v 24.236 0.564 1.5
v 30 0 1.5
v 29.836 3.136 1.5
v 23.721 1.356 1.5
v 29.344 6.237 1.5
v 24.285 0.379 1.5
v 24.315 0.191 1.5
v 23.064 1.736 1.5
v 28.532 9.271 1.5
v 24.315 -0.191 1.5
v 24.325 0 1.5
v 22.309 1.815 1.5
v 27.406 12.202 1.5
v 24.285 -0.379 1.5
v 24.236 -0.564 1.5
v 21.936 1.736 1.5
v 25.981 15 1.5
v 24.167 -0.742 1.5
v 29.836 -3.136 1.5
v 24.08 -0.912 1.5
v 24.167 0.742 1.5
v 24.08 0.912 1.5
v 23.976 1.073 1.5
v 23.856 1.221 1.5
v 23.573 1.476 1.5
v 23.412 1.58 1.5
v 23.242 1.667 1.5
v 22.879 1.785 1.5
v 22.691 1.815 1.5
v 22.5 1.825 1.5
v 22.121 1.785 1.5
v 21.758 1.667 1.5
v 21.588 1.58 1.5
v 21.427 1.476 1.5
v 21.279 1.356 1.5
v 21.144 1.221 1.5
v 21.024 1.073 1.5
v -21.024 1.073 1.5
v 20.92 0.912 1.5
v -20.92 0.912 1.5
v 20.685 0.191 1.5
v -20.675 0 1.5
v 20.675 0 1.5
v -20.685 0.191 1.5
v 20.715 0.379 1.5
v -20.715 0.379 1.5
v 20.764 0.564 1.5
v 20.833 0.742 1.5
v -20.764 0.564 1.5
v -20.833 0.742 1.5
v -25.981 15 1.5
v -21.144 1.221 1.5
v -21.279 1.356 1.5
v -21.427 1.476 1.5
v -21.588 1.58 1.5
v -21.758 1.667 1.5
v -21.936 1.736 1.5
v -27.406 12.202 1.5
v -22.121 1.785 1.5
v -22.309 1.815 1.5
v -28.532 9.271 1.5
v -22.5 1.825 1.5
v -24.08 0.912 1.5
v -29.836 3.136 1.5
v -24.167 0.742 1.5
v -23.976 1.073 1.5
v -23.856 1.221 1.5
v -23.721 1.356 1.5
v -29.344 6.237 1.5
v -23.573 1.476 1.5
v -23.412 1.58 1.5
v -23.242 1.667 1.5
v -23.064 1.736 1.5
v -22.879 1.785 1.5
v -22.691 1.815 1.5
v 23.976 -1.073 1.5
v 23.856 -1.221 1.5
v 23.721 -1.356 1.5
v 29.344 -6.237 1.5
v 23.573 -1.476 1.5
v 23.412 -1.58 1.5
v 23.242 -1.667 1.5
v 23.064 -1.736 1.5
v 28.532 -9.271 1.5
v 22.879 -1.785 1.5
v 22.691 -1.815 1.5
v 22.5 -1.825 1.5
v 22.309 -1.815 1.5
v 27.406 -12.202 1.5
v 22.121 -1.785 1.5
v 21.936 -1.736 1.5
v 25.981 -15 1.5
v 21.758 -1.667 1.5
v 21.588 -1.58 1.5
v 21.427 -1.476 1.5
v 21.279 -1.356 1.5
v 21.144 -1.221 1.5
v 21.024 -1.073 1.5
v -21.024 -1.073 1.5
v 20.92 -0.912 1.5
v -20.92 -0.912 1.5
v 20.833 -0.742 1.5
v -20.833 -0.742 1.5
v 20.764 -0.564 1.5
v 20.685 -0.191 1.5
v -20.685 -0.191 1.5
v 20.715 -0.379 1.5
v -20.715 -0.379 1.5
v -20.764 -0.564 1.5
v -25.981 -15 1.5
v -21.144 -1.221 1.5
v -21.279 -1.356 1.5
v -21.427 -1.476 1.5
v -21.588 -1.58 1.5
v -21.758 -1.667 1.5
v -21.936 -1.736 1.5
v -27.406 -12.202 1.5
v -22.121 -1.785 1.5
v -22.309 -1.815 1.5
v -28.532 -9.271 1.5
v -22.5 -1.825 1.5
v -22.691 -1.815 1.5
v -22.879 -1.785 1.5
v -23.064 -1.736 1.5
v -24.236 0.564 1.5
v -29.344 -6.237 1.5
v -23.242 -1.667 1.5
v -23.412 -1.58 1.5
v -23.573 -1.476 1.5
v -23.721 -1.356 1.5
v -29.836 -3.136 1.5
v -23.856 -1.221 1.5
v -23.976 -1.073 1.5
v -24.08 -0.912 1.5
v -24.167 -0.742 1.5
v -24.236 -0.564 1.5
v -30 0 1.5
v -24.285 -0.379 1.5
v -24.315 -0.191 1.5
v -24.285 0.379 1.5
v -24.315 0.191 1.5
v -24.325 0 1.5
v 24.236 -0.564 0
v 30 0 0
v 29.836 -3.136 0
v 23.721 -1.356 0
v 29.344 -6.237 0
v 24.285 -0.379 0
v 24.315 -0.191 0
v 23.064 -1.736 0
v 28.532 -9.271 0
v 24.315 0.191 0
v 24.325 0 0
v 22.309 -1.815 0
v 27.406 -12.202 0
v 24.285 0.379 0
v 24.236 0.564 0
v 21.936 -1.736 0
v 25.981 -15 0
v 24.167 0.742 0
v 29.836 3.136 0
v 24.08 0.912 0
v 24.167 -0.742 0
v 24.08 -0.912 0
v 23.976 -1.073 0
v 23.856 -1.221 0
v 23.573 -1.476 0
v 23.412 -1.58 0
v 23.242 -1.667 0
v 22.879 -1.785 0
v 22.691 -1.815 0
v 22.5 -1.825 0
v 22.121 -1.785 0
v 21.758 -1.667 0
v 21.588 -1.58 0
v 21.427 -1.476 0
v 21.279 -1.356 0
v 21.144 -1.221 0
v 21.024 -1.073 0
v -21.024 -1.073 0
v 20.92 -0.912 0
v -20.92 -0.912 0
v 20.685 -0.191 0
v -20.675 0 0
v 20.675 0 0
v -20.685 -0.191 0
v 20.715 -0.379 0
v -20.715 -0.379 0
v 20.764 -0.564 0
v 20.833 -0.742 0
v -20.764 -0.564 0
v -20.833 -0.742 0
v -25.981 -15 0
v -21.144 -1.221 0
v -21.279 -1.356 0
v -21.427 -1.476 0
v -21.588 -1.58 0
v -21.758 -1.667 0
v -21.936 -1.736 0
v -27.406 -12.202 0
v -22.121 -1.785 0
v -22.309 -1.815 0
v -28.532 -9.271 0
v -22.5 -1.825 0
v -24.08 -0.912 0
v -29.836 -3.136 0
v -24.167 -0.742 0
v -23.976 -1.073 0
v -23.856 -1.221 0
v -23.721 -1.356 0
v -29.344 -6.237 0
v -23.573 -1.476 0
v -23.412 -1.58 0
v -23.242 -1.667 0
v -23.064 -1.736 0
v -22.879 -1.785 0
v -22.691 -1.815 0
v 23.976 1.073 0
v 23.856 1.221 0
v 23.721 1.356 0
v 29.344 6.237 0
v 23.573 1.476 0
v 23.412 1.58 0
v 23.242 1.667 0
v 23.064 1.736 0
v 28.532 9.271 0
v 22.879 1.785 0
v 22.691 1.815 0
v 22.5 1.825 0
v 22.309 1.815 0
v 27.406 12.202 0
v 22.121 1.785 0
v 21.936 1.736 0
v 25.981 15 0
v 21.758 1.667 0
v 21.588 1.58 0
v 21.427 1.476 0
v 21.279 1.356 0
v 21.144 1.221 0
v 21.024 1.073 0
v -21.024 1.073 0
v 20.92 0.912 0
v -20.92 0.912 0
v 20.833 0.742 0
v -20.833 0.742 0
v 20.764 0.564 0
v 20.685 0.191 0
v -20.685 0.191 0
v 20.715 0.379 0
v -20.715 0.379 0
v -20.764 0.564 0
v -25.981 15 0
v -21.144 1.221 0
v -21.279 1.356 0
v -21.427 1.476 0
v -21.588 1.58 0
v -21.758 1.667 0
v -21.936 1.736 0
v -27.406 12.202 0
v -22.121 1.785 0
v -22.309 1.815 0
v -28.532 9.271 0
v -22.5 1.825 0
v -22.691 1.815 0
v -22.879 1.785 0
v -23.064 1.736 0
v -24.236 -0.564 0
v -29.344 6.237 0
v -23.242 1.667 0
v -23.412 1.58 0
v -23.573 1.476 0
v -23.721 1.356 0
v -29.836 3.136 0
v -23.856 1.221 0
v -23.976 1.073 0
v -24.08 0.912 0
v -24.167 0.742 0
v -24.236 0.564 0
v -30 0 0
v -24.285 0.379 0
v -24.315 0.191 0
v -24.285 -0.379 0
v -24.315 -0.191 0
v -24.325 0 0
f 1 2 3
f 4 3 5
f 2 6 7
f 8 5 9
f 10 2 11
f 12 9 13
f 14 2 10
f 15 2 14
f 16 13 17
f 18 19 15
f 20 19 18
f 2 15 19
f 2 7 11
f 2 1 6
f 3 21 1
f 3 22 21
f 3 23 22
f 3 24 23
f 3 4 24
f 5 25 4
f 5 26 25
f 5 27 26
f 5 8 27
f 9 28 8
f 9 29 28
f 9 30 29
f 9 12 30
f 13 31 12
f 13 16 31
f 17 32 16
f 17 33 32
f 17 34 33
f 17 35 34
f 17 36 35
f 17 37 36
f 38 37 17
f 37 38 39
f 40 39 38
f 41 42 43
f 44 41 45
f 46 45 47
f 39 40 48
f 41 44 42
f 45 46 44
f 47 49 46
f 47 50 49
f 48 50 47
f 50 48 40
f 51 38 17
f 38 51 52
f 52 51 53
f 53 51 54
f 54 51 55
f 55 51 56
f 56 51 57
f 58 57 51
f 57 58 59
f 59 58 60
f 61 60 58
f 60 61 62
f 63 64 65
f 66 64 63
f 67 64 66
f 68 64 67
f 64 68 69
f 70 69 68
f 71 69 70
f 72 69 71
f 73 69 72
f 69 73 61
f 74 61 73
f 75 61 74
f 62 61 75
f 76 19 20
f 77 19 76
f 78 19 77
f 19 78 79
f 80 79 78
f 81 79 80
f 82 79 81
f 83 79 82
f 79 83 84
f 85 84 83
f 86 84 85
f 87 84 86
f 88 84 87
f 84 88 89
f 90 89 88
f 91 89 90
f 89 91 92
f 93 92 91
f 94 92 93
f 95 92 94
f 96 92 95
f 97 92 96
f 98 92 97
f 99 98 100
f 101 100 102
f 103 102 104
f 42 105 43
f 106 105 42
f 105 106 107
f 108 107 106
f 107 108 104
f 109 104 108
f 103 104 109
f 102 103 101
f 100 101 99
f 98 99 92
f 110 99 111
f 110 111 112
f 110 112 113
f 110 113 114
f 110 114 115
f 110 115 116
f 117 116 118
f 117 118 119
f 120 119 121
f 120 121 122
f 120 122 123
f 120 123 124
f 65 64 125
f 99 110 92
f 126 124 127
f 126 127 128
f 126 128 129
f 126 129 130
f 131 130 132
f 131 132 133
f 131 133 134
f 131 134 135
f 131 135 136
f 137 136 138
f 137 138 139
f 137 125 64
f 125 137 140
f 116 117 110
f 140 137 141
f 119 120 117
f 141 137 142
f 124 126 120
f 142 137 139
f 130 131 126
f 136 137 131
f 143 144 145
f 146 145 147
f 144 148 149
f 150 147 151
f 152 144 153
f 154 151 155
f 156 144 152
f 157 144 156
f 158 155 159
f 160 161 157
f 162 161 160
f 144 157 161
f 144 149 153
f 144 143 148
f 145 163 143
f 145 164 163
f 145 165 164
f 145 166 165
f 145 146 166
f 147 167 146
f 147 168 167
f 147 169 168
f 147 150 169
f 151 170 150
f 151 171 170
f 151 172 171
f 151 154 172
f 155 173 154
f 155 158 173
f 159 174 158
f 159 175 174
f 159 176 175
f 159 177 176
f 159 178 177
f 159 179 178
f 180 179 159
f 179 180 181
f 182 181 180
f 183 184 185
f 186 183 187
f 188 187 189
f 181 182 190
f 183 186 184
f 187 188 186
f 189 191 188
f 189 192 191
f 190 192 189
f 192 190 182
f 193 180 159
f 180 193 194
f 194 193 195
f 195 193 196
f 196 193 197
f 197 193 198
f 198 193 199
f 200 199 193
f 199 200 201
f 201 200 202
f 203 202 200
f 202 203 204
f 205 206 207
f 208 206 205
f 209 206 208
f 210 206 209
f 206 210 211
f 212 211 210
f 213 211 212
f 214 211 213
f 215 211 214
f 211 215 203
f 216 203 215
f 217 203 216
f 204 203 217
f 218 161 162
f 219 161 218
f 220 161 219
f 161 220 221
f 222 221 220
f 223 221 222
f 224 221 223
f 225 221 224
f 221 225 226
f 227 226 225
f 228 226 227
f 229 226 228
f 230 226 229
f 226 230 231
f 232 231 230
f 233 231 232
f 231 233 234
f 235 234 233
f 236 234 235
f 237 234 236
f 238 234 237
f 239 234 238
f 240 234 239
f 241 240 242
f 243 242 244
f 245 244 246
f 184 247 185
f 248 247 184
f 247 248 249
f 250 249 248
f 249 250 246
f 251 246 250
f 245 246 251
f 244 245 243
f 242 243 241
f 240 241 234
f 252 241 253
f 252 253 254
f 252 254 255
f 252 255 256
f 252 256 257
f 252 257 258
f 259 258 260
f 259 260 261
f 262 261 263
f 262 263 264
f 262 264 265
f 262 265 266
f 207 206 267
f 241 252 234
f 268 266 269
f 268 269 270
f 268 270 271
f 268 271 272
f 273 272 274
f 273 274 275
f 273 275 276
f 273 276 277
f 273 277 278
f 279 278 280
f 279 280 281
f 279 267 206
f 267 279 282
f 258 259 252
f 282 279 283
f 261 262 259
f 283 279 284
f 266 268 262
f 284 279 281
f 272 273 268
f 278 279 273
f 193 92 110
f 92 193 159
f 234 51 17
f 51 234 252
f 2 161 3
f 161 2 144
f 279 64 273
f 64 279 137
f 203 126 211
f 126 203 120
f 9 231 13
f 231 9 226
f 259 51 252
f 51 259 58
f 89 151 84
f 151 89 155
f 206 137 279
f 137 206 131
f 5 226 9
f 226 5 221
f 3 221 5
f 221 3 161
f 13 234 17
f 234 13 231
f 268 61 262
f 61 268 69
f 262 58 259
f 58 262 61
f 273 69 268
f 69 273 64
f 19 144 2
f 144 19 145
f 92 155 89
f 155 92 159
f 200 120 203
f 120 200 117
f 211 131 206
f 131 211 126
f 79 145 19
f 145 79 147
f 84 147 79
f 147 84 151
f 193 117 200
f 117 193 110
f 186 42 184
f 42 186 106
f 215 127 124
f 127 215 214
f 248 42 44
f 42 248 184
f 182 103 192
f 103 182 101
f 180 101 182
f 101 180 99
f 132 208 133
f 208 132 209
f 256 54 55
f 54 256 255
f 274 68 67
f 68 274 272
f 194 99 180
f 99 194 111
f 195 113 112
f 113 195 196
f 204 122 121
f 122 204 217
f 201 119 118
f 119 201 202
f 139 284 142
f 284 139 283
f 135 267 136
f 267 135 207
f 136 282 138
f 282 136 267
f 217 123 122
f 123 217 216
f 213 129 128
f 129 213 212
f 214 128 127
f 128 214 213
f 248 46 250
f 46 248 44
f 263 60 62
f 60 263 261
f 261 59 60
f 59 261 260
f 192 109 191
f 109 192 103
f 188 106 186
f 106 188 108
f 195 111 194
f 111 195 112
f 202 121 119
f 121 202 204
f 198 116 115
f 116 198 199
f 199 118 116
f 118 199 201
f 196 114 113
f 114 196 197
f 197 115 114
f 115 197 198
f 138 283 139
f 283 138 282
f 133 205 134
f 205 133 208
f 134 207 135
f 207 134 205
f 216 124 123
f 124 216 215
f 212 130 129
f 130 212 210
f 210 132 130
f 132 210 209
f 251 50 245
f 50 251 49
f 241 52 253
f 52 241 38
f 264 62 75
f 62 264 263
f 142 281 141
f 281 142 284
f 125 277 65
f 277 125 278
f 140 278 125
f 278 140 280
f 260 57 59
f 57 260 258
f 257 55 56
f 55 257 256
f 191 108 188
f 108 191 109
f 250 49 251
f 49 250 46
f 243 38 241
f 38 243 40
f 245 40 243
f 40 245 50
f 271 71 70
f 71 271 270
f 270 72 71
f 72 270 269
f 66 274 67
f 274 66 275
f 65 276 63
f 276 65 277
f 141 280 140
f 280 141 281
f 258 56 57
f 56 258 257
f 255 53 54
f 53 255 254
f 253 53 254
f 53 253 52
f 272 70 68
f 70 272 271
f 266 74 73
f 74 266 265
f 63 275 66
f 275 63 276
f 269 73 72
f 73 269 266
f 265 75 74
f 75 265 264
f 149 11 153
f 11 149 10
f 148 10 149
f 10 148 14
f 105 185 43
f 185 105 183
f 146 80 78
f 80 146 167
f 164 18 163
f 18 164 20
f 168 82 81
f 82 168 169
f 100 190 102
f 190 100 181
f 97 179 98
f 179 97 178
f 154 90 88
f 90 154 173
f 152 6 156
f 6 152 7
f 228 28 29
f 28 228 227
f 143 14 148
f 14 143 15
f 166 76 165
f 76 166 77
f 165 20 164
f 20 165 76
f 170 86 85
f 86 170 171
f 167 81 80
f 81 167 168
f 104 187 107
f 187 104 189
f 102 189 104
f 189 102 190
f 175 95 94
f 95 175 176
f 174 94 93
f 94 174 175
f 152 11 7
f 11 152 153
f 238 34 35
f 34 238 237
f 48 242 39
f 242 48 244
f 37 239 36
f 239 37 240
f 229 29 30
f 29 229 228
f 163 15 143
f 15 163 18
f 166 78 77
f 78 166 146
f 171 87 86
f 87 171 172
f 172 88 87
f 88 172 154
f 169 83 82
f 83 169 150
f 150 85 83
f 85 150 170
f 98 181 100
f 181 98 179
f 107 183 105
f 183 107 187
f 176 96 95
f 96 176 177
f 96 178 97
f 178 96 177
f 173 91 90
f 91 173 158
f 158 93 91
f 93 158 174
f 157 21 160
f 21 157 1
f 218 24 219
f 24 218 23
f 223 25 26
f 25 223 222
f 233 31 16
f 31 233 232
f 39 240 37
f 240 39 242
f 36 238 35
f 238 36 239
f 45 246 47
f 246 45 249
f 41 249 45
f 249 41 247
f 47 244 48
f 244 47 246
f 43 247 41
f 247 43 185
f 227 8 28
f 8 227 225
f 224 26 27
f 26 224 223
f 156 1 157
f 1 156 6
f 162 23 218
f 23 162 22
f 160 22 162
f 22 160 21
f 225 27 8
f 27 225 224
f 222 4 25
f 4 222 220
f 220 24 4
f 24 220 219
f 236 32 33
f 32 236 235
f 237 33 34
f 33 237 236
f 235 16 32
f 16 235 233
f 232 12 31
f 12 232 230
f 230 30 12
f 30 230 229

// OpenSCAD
// file: configuration.scad
// Increase this if your slicer or printer make holes too tight.
extra_radius = 0.1;

// OD = outside diameter, corner to corner.
m3_nut_od = 6.1;
m3_nut_radius = m3_nut_od/2 + 0.2 + extra_radius;
m3_nut_thickness = 2.4 + extra_radius;
m3_washer_radius = 3.5 + extra_radius;

// Major diameter of metric 3mm thread.
m3_major = 2.85;
m3_radius = m3_major/2 + extra_radius;
m3_wide_radius = m3_major/2 + extra_radius + 0.2;

// OD = outside diameter, corner to corner.
m4_nut_od = 7.1;
m4_nut_radius = m4_nut_od/2 + 0.2 + extra_radius;
m4_thickness = 3.82 + extra_radius;
m4_washer_radius = 4.5 + extra_radius;

// Major diameter of metric 3mm thread.
m4_major = 3.85;
m4_radius = m4_major/2 + extra_radius;
m4_wide_radius = m4_major/2 + extra_radius + 0.2;

// NEMA17 stepper motors.
motor_shaft_diameter = 5;
motor_shaft_radius = motor_shaft_diameter/2 + extra_radius;

// Frame brackets. M3x8mm screws work best with 3.6 mm brackets.
thickness = 3.6;

// OpenBeam or Misumi. Currently only 15x15 mm, but there is a plan
// to make models more parametric and allow 20x20 mm in the future.
extrusion = 15;

// Placement for the NEMA17 stepper motors.
motor_offset = 44;
motor_length = 47;
// main file
include <configuration.scad>;

$fn = 60;
roundness = 6;

extra = 1;

socket_thickness = 21;
socket_width = 27;
socket_length = 46.5;

module extrusion_cutout(h, extra) {
  difference() {
    cube([extrusion+extra, extrusion+extra, h], center=true);
    for (a = [0:90:359]) rotate([0, 0, a]) {
      translate([extrusion/2, 0, 0])
        cube([6, 2.5, h+1], center=true);
    }
  }
}

module pump_mount() {
  thickness = 1.5;

  difference() {
    union() {
      intersection() {
        translate([0, 0, thickness/2])
          cube([60, 30, thickness], center=true);
        scale([1, 1, 1]) cylinder(r=30, h=10, center=true);
      }
    }
    union() {
      rotate([90, 0, 0]) {
        for(a = [-1, 1]) {
          translate([a*extrusion*1.5, -extrusion/2, 0]) {
            % extrusion_cutout(100+10, 2*extra_radius);
            translate([0, 8, 0]) rotate([90, 0, 0])
              cylinder(r=m3_radius+.3, h=5, center=true);
            }
        }
      }

    }
  }
};

pump_mount();
